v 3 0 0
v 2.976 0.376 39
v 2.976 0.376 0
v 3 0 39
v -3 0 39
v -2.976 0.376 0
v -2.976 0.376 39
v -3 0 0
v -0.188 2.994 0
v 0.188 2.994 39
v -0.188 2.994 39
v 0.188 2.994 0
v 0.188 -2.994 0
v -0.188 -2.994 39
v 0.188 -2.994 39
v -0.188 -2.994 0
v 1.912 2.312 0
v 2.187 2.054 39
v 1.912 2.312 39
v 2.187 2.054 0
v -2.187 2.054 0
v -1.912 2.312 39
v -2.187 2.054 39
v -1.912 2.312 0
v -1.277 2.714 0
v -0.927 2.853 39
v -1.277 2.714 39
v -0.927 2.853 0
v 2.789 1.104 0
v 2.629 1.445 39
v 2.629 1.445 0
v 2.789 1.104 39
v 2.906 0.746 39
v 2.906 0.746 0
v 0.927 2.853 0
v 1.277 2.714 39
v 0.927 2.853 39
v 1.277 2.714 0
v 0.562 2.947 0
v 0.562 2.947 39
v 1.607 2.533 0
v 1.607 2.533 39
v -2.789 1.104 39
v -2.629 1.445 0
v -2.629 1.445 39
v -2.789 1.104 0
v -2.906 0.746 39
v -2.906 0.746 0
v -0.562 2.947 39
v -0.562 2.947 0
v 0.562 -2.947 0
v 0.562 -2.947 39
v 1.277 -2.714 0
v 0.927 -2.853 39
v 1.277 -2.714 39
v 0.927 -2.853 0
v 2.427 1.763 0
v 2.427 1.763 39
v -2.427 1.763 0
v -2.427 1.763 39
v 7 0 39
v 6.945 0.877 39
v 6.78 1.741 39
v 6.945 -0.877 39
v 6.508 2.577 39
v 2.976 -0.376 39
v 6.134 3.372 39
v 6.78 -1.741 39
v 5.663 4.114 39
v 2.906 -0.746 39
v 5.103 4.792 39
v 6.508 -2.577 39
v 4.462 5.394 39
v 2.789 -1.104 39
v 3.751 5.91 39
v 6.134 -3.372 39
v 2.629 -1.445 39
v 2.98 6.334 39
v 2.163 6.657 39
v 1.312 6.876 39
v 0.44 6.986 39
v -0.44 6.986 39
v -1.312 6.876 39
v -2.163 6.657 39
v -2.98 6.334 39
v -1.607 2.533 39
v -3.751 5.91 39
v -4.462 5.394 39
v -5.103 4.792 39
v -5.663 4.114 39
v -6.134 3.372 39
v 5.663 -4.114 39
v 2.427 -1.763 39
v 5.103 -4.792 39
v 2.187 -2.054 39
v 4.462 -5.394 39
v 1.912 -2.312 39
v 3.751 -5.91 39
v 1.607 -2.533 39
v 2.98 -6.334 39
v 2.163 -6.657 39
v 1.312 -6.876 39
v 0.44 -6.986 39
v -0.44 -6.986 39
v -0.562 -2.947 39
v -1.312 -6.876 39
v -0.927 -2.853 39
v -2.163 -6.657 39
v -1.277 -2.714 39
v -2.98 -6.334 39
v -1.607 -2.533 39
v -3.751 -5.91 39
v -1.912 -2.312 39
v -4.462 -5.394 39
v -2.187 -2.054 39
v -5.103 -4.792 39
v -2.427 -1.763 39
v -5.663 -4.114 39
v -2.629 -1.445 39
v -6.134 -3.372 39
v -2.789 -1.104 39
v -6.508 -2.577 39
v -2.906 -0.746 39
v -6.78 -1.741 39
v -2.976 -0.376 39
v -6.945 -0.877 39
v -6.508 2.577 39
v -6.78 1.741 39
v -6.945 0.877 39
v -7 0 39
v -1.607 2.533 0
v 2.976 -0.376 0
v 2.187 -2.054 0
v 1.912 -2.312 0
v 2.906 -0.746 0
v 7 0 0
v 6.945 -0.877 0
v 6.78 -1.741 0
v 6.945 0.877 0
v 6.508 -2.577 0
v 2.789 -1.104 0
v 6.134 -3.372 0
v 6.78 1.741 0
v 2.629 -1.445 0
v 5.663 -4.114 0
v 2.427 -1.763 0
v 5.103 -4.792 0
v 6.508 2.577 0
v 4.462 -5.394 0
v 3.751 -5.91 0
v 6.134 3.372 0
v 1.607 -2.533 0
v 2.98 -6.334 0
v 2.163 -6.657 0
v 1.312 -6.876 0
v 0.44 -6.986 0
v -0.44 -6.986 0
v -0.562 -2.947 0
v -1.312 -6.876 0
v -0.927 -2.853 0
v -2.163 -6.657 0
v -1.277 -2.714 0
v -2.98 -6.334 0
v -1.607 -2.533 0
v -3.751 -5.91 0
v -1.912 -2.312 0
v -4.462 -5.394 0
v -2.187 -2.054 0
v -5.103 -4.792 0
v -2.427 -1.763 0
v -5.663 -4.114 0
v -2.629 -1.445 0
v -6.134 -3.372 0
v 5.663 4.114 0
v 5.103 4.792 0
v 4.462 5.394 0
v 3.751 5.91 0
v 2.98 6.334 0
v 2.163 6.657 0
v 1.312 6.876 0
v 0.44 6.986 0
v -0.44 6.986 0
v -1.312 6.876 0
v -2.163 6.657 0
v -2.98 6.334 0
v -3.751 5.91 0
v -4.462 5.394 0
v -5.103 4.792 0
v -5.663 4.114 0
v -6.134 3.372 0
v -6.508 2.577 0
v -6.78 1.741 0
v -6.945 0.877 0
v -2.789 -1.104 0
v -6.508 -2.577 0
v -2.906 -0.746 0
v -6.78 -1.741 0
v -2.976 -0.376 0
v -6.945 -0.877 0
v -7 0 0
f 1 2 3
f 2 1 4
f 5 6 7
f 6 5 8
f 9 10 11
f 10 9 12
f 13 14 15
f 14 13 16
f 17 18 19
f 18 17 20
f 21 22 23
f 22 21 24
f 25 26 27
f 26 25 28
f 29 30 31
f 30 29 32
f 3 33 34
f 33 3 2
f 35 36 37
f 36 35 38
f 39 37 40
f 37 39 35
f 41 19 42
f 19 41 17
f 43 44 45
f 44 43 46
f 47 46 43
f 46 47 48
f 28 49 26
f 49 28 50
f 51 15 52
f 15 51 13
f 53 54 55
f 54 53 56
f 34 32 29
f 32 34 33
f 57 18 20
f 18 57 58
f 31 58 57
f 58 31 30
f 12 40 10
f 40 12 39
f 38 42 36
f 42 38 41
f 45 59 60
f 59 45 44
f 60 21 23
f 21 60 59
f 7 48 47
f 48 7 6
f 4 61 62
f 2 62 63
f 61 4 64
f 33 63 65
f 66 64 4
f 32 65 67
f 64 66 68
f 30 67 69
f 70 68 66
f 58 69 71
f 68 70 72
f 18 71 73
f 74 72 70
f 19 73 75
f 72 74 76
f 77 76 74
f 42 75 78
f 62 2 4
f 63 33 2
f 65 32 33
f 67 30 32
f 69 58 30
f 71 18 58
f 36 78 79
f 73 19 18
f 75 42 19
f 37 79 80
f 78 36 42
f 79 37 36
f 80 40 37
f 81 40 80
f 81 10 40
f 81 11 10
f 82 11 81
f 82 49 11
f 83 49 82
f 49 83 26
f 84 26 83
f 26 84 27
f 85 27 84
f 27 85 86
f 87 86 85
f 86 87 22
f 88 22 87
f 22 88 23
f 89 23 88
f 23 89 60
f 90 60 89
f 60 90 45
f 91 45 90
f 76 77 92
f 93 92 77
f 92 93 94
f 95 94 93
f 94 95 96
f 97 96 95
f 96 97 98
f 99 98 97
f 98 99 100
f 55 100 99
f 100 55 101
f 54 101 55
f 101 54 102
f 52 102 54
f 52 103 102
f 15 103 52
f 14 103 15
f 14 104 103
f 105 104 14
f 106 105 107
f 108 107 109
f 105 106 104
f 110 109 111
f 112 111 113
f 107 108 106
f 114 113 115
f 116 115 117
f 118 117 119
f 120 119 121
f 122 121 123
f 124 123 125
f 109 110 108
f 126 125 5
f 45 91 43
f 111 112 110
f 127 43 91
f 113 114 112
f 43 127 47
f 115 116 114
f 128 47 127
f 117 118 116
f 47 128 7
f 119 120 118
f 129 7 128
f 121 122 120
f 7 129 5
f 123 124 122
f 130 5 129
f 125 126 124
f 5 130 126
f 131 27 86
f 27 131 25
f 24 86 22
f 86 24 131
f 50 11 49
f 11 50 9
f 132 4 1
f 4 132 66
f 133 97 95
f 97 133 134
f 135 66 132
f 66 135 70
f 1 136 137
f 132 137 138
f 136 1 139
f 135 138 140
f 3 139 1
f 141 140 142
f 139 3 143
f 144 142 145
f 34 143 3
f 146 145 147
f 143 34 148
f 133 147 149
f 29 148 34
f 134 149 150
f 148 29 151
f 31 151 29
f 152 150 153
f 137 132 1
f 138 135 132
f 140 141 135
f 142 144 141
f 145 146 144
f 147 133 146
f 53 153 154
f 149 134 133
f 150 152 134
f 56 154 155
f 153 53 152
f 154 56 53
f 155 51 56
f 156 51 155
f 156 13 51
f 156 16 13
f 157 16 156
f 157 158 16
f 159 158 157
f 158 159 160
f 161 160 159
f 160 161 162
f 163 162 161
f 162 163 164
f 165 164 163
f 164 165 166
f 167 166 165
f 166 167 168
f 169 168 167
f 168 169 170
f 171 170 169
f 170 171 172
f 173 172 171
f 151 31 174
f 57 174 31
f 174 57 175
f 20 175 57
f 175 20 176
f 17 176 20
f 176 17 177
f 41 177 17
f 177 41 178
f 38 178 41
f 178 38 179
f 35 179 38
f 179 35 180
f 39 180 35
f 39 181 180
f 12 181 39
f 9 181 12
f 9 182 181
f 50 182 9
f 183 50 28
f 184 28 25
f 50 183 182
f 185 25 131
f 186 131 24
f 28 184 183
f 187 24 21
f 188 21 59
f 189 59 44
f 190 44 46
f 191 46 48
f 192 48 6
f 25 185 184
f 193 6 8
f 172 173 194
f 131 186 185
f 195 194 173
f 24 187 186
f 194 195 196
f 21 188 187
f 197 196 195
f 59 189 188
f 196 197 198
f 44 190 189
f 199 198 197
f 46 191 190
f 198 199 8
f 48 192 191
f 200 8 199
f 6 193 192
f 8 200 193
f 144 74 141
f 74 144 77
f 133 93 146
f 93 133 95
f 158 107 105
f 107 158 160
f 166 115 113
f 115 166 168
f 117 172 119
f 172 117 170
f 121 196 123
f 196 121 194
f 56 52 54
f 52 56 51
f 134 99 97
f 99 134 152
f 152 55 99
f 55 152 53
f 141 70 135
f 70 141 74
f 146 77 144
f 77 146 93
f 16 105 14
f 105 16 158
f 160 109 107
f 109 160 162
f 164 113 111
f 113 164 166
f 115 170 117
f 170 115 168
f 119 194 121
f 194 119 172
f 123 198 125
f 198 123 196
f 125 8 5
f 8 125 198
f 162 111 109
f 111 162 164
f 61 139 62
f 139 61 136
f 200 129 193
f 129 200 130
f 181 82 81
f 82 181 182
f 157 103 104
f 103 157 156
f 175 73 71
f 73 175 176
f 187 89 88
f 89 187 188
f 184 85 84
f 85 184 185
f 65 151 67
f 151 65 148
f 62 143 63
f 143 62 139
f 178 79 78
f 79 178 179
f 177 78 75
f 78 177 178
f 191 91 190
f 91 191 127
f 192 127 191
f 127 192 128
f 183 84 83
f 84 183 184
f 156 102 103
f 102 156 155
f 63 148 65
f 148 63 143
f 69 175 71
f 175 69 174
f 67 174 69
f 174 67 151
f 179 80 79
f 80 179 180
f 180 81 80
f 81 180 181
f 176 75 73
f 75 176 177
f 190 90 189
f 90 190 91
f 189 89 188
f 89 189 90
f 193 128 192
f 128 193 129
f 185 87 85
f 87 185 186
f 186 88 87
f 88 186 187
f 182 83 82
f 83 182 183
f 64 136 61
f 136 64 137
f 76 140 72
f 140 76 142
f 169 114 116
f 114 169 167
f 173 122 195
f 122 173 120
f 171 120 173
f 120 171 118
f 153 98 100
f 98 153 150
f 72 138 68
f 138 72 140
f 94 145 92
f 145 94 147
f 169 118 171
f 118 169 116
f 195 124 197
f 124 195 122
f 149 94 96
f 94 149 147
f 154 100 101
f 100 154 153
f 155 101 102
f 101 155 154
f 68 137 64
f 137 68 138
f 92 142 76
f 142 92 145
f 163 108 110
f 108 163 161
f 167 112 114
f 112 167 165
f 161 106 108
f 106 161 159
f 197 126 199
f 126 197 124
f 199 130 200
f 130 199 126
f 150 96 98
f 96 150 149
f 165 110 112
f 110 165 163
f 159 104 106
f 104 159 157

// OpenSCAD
$fn = 50;


difference() {
	union() {
		cylinder(h = 39, r = 7.0000000000);
	}
	union() {
		cylinder(h = 39, r = 3.0000000000);
		cylinder(h = 39, r = 1.5000000000);
		cylinder(h = 39, r = 1.5000000000);
		cylinder(h = 39, r = 1.5000000000);
	}
}
